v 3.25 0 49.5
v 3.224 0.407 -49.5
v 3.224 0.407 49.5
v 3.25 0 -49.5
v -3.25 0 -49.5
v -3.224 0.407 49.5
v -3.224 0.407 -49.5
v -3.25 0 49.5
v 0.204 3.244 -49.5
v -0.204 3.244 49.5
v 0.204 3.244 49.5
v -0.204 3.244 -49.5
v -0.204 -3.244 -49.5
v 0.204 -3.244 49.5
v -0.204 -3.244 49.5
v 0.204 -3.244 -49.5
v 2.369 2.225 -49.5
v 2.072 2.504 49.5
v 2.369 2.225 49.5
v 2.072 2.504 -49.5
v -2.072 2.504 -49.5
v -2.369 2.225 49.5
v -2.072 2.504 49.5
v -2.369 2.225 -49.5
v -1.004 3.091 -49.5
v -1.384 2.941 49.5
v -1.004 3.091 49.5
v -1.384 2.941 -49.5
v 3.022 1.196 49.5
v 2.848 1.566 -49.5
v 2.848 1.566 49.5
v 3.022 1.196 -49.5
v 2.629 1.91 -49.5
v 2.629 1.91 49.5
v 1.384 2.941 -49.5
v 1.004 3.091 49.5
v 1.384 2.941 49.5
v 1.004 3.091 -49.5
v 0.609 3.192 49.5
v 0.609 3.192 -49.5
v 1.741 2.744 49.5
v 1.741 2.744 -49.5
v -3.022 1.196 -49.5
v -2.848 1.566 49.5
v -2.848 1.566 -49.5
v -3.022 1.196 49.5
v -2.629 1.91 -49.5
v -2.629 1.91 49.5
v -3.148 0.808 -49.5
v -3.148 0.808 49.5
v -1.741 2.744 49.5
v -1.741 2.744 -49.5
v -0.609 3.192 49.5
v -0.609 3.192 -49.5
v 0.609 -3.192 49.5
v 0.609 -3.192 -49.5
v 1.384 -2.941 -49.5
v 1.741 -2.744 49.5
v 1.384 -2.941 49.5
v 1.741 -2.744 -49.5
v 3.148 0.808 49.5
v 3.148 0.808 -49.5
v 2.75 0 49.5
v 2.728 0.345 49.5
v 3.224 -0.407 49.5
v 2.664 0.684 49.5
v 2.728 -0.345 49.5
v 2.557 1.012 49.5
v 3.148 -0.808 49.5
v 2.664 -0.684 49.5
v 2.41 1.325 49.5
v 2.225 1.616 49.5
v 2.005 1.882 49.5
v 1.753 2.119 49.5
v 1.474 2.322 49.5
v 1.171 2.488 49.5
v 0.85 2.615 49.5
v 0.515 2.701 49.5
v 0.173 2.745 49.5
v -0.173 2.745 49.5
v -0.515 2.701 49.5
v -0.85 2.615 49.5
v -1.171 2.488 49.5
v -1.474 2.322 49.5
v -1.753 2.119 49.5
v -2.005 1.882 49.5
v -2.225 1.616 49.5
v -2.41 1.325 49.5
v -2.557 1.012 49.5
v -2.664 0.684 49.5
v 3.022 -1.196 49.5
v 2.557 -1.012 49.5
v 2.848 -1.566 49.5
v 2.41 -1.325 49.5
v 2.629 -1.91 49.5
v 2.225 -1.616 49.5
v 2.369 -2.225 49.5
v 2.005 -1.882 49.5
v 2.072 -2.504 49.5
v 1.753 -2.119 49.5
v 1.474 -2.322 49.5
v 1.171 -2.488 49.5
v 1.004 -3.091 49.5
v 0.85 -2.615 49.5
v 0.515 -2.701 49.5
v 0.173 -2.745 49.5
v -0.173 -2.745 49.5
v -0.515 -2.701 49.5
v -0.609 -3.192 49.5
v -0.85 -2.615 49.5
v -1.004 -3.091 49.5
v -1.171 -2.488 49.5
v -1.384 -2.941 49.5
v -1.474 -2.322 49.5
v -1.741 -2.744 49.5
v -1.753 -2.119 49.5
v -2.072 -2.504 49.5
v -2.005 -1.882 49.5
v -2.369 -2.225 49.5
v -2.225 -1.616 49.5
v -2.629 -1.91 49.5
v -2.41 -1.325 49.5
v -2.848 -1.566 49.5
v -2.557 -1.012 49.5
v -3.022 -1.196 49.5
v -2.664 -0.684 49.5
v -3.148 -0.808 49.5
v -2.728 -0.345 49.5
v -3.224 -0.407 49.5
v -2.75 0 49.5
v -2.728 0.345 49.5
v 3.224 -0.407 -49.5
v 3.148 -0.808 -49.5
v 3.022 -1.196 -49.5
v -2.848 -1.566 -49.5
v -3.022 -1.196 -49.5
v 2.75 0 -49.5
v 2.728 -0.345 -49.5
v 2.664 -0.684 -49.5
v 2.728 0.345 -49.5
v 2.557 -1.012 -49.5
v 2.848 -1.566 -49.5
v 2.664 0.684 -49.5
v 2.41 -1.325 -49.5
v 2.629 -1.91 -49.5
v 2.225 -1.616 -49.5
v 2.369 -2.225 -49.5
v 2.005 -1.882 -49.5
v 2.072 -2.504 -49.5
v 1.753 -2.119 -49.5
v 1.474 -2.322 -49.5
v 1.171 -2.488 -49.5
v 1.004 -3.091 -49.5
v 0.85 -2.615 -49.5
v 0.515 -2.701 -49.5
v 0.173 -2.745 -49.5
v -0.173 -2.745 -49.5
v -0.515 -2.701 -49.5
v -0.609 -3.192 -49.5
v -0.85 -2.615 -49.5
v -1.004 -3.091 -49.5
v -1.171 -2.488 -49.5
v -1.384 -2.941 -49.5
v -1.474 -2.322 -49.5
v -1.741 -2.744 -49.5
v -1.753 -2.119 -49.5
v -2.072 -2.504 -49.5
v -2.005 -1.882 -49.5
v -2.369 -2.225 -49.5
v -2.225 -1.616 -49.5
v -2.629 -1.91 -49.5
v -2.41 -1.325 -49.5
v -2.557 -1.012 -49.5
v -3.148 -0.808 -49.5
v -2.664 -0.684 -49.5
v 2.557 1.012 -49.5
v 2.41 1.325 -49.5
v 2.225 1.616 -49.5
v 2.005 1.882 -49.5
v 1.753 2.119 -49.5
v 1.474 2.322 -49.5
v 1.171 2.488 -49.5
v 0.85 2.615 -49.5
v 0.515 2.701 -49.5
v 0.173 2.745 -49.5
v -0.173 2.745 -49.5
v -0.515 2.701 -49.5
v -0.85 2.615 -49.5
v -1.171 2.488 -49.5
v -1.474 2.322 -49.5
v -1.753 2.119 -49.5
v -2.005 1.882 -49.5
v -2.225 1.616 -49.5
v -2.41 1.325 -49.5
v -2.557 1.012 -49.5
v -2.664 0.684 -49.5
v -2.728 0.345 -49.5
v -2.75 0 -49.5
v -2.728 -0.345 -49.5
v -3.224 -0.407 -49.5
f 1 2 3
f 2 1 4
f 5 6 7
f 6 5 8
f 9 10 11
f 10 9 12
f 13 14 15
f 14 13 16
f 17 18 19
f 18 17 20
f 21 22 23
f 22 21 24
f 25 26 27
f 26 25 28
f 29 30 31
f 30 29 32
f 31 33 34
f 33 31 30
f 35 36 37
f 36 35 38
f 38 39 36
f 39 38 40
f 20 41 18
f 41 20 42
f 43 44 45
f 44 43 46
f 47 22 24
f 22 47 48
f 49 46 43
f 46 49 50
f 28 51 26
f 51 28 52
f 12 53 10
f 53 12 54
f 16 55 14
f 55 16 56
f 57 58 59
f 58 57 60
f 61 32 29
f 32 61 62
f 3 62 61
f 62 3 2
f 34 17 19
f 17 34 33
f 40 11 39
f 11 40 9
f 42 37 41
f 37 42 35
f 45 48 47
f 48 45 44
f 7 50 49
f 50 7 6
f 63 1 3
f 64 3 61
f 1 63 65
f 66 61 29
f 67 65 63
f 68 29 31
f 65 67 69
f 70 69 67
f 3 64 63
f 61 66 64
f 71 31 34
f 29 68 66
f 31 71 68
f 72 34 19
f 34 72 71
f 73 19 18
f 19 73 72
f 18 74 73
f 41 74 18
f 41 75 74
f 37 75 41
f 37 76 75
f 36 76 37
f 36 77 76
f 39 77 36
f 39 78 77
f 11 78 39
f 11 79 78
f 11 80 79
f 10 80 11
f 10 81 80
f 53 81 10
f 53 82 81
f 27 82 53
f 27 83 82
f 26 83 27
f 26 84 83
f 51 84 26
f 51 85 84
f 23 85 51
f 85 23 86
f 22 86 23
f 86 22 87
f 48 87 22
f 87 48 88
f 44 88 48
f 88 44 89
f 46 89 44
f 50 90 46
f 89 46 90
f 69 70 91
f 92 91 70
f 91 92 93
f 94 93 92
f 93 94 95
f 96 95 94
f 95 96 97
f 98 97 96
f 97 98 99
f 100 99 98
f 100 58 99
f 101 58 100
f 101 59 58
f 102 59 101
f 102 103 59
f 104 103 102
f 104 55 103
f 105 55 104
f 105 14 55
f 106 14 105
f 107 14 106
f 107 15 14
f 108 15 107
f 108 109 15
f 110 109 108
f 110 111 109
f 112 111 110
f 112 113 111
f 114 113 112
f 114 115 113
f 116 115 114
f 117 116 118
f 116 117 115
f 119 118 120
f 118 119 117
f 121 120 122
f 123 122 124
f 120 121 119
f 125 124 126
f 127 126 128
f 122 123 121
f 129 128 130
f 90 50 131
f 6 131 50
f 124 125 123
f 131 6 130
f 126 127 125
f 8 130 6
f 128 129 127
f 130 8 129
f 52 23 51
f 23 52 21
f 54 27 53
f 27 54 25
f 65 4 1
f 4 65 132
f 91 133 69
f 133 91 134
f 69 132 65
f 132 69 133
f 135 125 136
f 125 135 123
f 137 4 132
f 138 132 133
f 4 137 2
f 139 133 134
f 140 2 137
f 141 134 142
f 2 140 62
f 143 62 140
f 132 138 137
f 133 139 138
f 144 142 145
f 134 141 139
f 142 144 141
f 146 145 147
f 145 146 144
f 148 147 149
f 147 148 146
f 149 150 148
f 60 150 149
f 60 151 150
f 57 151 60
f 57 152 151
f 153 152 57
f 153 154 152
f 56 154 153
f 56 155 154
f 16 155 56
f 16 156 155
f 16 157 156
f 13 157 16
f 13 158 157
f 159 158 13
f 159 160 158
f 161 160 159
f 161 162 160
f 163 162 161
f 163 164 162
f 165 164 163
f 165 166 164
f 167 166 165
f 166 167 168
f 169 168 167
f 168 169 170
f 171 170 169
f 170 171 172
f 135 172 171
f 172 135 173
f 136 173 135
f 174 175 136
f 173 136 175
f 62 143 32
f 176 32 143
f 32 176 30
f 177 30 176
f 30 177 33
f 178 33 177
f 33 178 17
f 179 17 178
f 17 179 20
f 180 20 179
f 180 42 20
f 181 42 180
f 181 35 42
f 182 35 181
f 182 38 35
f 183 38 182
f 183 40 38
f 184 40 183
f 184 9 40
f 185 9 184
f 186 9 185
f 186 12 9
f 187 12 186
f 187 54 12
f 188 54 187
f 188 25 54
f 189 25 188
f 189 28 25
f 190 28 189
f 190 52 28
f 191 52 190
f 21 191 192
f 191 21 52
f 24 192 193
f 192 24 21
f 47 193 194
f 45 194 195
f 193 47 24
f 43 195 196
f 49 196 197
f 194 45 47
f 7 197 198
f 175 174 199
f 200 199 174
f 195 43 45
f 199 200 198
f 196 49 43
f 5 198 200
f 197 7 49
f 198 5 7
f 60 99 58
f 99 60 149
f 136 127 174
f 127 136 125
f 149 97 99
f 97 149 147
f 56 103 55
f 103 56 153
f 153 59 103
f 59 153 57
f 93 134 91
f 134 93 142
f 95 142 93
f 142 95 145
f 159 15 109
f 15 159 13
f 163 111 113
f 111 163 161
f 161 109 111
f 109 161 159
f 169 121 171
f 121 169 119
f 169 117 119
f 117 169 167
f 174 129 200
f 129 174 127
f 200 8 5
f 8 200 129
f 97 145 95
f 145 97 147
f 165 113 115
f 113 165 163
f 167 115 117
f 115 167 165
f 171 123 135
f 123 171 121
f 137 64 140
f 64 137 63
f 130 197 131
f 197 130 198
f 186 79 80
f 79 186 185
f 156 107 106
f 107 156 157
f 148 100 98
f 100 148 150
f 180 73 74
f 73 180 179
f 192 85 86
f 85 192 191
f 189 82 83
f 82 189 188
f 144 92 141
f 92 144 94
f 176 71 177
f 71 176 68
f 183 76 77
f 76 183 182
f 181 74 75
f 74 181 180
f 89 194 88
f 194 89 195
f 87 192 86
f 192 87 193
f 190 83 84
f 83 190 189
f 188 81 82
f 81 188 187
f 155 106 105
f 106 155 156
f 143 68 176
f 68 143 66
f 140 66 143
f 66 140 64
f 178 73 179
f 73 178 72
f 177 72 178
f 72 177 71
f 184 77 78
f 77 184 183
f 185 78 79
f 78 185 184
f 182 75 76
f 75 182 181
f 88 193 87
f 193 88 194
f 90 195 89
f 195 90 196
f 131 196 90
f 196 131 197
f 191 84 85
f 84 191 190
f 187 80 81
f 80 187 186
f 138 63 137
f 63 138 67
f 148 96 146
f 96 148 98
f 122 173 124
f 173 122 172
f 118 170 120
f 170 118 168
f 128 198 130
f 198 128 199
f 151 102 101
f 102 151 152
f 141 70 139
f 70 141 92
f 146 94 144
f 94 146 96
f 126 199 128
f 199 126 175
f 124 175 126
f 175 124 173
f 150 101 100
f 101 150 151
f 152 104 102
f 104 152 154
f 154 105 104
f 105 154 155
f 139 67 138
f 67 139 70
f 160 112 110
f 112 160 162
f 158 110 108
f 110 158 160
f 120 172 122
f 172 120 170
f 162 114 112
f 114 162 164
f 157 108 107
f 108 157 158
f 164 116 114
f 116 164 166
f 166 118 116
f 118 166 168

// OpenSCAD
$fn = 50;


difference() {
	union() {
		translate(v = [0, 0, -49.5000000000]) {
			cylinder(h = 99, r = 3.2500000000);
		}
	}
	union() {
		translate(v = [0, 0, -100.0000000000]) {
			cylinder(h = 200, r = 2.7500000000);
		}
	}
}
